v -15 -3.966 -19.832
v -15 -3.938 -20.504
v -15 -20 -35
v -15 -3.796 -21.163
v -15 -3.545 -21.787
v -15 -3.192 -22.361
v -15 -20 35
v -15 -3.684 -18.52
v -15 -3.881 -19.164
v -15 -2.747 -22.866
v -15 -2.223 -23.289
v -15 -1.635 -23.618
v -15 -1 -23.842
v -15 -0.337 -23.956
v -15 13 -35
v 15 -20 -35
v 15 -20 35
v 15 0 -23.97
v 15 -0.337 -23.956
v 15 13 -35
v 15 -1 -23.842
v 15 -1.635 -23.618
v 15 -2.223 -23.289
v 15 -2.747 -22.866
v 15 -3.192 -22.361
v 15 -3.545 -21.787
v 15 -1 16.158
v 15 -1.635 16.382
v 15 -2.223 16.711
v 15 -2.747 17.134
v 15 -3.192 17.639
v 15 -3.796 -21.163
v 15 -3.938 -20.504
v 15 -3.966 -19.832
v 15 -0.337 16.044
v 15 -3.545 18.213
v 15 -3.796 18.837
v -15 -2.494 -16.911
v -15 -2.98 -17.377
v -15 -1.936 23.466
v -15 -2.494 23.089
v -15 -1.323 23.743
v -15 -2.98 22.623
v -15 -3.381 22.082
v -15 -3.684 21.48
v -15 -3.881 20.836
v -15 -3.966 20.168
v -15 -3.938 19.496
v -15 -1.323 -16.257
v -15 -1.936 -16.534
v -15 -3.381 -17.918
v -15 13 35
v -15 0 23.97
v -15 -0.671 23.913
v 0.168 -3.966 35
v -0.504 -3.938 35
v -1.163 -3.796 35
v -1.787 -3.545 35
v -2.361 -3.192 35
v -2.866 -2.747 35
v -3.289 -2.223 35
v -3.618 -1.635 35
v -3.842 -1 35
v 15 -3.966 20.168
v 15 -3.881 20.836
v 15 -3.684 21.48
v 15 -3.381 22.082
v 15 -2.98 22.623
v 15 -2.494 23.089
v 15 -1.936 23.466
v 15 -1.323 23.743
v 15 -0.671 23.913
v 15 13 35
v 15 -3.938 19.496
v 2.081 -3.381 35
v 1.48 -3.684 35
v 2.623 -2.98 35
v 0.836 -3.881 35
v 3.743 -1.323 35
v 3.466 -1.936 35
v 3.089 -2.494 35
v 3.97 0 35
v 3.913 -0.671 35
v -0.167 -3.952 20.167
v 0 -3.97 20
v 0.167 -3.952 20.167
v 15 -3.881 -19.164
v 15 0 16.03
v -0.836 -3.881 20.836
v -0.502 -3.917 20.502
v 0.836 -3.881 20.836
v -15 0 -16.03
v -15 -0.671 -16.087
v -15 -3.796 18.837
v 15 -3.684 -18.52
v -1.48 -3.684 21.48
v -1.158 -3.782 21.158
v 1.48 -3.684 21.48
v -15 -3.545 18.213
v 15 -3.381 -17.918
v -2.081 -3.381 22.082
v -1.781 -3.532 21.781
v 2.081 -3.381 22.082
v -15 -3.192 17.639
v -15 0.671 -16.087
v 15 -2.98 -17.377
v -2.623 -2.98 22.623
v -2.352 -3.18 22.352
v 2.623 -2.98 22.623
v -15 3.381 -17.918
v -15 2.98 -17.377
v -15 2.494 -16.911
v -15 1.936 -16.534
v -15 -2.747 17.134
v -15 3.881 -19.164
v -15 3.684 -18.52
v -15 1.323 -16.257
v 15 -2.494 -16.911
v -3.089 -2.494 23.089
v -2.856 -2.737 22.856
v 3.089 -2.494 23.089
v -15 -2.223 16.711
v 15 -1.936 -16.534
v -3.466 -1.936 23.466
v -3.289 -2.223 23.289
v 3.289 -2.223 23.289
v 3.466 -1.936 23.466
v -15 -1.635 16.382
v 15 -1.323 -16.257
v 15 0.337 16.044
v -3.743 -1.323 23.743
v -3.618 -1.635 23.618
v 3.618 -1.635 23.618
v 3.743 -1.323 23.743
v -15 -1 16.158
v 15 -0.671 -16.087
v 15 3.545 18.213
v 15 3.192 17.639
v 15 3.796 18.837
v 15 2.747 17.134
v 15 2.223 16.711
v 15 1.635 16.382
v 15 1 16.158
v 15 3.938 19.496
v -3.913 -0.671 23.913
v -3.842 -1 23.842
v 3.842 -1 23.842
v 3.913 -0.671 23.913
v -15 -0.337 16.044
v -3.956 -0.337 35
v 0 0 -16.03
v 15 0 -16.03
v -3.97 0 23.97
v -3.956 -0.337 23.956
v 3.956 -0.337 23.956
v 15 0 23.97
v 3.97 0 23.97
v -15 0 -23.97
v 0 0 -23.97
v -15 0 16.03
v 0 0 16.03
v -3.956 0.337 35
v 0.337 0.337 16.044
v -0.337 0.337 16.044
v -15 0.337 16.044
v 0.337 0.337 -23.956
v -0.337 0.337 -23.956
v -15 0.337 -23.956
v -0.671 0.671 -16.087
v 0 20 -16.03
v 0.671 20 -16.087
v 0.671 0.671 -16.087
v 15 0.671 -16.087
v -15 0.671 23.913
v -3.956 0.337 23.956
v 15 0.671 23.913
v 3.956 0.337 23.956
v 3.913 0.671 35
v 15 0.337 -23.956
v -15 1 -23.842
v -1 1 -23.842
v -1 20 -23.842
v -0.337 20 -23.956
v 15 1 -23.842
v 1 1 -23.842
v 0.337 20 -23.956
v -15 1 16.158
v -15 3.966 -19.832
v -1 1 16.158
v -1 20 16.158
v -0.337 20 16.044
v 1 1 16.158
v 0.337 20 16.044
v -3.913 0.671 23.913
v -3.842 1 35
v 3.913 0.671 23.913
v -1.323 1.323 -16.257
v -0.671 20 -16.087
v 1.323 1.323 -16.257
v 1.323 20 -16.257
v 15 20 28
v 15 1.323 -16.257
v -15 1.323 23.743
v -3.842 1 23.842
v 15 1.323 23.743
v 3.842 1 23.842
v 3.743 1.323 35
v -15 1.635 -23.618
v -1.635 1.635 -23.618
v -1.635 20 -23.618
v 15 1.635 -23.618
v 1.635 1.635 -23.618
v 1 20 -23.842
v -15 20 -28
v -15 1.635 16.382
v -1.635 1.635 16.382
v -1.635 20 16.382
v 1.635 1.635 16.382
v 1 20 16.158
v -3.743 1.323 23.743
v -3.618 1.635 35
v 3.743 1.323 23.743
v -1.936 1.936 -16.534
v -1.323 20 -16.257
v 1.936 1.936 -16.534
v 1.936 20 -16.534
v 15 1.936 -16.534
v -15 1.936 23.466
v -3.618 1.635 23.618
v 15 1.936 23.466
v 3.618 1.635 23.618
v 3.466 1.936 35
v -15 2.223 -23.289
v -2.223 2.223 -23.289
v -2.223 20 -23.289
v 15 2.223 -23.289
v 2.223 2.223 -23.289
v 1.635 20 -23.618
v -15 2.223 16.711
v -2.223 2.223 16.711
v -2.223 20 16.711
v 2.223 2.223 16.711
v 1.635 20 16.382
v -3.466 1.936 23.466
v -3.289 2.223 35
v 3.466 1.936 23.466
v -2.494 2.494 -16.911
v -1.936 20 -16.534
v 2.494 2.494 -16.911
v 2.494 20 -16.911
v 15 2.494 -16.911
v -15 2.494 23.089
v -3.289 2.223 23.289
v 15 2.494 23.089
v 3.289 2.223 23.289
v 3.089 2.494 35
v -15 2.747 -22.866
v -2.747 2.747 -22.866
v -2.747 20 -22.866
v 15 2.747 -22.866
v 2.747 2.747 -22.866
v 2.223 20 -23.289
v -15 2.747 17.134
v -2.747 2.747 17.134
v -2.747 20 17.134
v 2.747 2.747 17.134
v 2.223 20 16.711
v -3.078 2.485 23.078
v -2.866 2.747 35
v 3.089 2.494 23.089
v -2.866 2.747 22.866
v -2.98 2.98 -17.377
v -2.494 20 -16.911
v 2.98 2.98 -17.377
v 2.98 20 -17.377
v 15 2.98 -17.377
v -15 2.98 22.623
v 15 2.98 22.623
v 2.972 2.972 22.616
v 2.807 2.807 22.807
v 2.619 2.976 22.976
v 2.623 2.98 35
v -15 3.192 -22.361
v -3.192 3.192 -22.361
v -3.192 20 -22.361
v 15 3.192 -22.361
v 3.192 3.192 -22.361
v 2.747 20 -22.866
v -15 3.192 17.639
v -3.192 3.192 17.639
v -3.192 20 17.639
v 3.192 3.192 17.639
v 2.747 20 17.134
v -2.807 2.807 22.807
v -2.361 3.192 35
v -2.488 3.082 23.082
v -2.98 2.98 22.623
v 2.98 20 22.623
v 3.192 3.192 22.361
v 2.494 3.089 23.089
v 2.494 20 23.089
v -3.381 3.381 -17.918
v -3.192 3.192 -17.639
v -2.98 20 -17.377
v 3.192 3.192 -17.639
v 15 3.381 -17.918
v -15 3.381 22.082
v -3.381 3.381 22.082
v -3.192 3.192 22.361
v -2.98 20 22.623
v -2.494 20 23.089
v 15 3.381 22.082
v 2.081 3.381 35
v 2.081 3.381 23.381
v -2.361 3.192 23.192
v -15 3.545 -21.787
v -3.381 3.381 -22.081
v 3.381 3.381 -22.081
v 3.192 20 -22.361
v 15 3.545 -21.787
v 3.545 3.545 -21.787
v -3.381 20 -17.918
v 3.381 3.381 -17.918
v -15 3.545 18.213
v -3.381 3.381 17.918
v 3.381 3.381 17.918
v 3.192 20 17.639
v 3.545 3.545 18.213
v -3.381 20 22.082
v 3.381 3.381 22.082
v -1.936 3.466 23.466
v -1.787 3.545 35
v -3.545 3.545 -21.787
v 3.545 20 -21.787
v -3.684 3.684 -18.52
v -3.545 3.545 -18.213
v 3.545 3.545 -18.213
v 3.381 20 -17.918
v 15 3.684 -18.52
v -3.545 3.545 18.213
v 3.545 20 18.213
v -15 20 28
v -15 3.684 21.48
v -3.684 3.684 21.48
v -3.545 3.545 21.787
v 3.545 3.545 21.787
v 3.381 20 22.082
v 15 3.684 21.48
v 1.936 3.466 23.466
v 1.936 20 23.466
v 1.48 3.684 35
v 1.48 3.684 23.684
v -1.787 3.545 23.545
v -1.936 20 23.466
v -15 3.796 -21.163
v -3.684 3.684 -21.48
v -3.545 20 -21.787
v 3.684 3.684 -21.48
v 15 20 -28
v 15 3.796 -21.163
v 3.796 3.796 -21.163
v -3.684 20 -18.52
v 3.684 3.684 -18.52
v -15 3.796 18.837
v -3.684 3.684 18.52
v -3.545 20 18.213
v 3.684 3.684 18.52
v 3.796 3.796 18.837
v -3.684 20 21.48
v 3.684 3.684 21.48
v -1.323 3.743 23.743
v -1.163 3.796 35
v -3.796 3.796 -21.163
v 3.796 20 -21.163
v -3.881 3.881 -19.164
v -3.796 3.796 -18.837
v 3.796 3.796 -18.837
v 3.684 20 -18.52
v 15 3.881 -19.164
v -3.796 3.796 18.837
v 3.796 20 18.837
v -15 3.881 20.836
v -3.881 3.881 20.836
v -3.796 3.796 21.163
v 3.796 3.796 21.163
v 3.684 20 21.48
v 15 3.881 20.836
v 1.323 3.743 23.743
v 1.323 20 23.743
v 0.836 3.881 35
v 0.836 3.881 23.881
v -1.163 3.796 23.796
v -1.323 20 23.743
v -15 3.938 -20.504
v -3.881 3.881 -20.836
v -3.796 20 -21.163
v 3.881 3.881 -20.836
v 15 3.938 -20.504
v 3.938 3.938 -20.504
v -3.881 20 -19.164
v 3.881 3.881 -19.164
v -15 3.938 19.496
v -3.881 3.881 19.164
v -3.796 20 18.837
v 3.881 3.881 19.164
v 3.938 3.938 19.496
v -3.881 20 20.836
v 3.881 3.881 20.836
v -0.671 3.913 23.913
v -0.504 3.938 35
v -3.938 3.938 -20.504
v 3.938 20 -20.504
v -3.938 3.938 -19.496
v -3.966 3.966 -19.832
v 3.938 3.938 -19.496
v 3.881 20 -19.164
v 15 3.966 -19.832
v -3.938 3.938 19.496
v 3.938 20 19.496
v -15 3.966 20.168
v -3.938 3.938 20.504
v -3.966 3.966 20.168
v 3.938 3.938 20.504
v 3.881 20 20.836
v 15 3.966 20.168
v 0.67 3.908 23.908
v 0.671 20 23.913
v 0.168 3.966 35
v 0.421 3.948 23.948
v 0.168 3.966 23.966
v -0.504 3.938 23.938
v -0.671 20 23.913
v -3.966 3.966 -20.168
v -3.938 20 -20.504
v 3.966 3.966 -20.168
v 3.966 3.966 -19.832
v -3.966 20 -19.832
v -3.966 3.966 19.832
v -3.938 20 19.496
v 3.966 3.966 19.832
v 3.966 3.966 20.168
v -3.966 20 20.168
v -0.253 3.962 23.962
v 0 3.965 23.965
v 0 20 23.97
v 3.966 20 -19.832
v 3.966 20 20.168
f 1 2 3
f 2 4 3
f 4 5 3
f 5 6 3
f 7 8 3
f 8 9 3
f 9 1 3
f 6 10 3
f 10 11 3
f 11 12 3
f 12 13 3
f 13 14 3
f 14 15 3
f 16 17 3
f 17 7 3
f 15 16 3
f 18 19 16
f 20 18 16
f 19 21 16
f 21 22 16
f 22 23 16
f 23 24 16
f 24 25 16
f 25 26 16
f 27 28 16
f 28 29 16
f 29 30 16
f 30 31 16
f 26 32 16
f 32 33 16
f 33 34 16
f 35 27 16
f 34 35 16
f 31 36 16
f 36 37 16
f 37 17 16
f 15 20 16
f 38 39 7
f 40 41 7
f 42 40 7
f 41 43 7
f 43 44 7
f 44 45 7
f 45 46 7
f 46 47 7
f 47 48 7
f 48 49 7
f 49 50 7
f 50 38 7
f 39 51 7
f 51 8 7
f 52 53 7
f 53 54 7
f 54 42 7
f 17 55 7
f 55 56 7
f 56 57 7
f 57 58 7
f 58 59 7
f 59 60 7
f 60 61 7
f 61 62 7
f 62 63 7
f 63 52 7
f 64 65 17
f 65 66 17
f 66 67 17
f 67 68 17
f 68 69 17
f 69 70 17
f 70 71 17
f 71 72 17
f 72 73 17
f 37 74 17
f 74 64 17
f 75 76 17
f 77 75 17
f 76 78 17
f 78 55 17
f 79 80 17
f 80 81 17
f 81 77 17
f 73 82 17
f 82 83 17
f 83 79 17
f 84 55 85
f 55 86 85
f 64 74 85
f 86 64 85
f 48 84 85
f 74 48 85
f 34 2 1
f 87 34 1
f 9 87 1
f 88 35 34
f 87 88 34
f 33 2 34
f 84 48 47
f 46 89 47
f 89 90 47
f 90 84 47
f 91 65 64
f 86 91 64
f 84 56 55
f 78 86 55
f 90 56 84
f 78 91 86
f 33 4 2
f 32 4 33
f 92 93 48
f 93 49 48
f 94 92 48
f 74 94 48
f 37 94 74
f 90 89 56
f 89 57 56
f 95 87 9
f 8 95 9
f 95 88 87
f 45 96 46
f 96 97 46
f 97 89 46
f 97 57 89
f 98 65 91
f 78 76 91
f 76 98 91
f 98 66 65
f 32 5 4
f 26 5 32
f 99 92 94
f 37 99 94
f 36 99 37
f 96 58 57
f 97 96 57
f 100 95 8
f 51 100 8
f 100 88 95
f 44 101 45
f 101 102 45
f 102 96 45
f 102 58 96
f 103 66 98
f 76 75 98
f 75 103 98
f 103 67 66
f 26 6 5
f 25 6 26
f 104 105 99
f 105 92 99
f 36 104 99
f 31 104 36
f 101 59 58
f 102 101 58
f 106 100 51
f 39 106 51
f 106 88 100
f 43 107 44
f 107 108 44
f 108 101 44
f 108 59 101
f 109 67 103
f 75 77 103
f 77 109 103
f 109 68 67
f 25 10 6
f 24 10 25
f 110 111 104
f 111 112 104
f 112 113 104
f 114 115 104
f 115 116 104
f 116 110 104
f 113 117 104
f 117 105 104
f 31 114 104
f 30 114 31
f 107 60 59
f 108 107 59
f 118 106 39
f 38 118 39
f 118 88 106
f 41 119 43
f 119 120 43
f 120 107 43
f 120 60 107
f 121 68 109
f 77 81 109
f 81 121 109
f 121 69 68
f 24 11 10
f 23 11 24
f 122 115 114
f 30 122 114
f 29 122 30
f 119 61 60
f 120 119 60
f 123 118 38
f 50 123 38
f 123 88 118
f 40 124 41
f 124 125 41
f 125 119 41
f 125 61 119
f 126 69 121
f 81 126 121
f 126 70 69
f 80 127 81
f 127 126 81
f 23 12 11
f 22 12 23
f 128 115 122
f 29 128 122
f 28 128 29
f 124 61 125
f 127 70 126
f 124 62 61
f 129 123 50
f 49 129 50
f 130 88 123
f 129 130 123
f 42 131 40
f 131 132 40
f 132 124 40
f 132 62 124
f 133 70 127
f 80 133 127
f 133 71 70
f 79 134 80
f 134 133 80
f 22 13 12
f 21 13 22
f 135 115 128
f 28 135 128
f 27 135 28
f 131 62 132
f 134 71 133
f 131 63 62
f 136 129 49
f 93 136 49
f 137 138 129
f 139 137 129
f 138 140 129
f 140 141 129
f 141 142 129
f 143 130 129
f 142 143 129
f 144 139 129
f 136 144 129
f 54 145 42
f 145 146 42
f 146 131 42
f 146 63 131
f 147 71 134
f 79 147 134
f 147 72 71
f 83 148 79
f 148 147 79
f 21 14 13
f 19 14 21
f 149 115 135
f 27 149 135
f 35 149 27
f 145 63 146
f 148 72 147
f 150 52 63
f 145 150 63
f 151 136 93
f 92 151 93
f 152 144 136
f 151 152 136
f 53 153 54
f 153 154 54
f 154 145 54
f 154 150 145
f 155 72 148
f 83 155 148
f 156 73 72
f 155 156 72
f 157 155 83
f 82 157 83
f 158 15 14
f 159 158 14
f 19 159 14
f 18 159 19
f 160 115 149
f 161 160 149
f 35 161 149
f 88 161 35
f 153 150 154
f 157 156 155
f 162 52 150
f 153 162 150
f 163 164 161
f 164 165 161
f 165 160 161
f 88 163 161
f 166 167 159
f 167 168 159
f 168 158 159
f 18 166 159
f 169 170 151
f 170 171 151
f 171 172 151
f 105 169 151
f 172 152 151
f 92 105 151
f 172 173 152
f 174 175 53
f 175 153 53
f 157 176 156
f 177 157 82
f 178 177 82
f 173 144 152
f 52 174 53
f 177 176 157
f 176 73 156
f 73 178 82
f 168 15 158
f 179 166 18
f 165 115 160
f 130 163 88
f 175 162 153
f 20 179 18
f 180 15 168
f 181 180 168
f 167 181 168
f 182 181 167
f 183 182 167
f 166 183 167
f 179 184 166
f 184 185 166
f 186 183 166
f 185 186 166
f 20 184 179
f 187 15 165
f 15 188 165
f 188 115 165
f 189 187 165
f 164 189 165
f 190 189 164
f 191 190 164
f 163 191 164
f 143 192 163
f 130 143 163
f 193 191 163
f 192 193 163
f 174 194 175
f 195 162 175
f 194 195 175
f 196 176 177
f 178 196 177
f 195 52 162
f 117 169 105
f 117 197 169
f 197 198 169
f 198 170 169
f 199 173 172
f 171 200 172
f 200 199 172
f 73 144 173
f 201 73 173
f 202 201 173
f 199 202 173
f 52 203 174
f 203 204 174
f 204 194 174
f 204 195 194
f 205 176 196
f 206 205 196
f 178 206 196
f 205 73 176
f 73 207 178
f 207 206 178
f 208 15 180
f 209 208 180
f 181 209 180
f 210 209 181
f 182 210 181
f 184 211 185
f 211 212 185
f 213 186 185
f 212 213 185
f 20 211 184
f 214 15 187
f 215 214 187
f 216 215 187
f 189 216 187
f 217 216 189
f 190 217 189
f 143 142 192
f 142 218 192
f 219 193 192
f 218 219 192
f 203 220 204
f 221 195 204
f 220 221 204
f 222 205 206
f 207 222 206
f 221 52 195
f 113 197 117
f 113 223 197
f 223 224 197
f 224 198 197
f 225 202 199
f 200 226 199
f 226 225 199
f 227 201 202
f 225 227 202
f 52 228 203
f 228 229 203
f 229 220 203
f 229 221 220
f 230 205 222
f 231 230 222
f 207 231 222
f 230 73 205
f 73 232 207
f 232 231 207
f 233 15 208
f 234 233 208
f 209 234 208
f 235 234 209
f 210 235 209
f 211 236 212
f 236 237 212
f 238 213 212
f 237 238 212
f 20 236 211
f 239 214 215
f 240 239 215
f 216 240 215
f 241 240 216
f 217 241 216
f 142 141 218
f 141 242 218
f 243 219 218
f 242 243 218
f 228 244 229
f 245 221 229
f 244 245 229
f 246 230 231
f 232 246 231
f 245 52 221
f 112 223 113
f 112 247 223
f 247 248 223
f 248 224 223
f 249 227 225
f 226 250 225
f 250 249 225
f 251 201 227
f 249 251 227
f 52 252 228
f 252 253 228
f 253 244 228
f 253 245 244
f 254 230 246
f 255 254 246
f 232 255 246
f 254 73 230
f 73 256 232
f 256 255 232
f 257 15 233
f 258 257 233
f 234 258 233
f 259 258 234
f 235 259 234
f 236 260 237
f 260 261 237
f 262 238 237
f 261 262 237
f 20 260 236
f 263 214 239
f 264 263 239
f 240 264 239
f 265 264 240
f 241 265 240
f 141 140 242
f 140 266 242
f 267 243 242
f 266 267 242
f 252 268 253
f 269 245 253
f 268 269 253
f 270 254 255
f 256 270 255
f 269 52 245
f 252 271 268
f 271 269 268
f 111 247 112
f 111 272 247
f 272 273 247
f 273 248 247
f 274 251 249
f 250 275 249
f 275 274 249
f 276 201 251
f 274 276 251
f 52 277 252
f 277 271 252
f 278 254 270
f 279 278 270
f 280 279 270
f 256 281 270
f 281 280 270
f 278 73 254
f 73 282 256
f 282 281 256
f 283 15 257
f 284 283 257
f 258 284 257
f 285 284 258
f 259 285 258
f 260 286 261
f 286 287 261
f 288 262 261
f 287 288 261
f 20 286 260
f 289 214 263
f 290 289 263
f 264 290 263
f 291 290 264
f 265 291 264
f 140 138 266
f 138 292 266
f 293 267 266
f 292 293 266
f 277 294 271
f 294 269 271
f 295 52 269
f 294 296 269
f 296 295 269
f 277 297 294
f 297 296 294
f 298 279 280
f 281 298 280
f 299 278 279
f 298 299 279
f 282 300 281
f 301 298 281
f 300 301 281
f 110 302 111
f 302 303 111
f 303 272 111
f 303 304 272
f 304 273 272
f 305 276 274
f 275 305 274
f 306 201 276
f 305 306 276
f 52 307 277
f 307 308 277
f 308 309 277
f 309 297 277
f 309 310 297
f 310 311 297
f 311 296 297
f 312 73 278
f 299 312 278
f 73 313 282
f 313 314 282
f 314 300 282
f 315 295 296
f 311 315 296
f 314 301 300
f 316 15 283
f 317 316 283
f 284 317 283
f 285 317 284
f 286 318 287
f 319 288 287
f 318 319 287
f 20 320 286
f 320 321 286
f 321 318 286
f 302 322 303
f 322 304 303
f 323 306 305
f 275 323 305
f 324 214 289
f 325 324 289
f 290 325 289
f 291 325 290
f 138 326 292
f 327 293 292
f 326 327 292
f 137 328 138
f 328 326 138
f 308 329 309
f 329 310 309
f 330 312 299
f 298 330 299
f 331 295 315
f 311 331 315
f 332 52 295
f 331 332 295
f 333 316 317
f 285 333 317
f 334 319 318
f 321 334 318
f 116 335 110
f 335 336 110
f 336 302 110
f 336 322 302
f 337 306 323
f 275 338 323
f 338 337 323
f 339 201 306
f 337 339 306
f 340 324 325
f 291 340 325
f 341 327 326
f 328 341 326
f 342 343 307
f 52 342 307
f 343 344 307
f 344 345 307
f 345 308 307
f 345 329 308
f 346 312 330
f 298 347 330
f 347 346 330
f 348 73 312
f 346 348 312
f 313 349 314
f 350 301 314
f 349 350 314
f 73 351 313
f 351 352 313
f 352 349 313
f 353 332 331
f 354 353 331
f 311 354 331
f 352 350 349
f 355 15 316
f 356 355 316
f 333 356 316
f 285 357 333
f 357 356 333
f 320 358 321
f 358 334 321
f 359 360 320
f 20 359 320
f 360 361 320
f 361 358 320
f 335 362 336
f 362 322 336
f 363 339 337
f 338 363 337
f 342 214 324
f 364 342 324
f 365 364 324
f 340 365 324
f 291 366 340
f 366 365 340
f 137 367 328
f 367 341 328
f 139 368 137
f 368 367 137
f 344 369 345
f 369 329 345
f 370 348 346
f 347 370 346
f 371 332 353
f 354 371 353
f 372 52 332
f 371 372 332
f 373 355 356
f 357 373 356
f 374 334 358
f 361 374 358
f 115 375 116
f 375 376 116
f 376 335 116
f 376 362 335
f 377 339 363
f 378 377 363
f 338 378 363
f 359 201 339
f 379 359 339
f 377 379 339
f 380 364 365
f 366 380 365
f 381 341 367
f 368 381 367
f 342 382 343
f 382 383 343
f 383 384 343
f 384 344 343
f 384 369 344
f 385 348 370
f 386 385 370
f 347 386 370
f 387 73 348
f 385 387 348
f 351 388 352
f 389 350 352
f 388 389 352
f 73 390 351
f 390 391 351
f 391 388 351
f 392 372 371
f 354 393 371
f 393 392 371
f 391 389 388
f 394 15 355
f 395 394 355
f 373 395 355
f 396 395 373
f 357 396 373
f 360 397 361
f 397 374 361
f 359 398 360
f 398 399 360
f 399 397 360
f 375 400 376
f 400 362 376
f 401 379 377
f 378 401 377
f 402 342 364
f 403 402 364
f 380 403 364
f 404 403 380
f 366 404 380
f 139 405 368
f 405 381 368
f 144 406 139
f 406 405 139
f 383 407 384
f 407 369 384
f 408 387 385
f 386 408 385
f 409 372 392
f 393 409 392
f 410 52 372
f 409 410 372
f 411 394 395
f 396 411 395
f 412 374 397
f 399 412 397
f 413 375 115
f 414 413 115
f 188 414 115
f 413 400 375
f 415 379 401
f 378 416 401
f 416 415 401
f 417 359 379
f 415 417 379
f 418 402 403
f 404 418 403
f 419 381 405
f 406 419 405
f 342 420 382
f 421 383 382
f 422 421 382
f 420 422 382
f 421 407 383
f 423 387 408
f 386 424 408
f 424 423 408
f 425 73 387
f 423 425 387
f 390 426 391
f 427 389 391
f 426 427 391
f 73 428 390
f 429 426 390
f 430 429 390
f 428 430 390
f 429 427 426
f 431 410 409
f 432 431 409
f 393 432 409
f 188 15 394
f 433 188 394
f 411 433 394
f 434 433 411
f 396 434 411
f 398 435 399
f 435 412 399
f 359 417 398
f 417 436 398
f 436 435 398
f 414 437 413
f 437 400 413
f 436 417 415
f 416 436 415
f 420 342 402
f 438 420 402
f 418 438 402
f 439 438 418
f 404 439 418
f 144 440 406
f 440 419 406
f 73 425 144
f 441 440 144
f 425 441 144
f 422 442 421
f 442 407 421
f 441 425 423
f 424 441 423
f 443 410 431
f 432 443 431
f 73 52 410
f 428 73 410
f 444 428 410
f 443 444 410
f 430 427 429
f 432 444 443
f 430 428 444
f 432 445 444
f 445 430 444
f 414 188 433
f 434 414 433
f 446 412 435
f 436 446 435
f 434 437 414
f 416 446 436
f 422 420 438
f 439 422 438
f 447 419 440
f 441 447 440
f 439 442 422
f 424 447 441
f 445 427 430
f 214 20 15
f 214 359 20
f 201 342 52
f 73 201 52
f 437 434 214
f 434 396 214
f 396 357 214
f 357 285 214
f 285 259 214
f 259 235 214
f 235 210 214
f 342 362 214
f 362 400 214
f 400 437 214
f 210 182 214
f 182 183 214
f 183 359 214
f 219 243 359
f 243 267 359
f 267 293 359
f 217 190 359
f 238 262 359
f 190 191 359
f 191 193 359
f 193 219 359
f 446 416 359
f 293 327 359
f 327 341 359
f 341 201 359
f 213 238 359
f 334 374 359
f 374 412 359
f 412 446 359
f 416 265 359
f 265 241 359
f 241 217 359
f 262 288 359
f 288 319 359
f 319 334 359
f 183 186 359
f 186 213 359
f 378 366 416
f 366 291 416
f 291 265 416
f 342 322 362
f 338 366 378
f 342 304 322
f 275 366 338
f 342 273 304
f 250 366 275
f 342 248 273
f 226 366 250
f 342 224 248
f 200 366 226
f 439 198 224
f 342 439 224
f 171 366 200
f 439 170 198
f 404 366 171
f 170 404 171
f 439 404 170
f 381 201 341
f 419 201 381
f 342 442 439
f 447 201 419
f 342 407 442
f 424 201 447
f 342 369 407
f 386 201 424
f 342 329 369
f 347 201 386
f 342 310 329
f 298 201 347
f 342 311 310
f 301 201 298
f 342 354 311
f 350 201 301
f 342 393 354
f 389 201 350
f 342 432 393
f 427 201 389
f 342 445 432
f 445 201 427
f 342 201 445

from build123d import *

# Parameters (mm, degrees)
ESBO_O1_W                = 70
ESBO_O1_H                = 40
ESBO_O1_R                = 3.97
RESSALTO_EXTRUS_O1_DEPTH = 15
ESBO_O3_R                = 3.97
CORTE_EXTRUS_O2_DEPTH    = 15
ESBO_O4_R                = 3.97
CORTE_EXTRUS_O3_DEPTH    = 20
CHANFRO2_SIZE            = 7


with BuildPart() as part:
    # Esboço1 → Ressalto-extrusão1 (new body, symmetric)
    with BuildSketch(Plane(origin=(0, 0, 0), x_dir=(0, 0, -1), z_dir=(1, 0, 0))):
        Rectangle(ESBO_O1_W, ESBO_O1_H)
        with Locations((-20, 0)):
            Circle(ESBO_O1_R, mode=Mode.SUBTRACT)
        with Locations((20, 0)):
            Circle(ESBO_O1_R, mode=Mode.SUBTRACT)
    extrude(amount=RESSALTO_EXTRUS_O1_DEPTH, both=True)

    # Esboço3 → Corte-extrusão2 (cut)
    with BuildSketch(Plane.XY.offset(35)):
        Circle(ESBO_O3_R)
    extrude(amount=-CORTE_EXTRUS_O2_DEPTH, mode=Mode.SUBTRACT)

    # Esboço4 → Corte-extrusão3 (cut)
    with BuildSketch(Plane(origin=(0, 20, 0), x_dir=(1, 0, 0), z_dir=(0, 1, 0))):
        with Locations((0, 20)):
            Circle(ESBO_O4_R)
        with Locations((0, -20)):
            Circle(ESBO_O4_R)
    extrude(amount=-CORTE_EXTRUS_O3_DEPTH, mode=Mode.SUBTRACT)

    # Chanfro2
    chanfro2_edges = [part.edges().sort_by_distance(p)[0] for p in [
        (0, 20, 35),
        (0, 20, -35),
    ]]
    chamfer(chanfro2_edges, length=CHANFRO2_SIZE)


solid = part.part
